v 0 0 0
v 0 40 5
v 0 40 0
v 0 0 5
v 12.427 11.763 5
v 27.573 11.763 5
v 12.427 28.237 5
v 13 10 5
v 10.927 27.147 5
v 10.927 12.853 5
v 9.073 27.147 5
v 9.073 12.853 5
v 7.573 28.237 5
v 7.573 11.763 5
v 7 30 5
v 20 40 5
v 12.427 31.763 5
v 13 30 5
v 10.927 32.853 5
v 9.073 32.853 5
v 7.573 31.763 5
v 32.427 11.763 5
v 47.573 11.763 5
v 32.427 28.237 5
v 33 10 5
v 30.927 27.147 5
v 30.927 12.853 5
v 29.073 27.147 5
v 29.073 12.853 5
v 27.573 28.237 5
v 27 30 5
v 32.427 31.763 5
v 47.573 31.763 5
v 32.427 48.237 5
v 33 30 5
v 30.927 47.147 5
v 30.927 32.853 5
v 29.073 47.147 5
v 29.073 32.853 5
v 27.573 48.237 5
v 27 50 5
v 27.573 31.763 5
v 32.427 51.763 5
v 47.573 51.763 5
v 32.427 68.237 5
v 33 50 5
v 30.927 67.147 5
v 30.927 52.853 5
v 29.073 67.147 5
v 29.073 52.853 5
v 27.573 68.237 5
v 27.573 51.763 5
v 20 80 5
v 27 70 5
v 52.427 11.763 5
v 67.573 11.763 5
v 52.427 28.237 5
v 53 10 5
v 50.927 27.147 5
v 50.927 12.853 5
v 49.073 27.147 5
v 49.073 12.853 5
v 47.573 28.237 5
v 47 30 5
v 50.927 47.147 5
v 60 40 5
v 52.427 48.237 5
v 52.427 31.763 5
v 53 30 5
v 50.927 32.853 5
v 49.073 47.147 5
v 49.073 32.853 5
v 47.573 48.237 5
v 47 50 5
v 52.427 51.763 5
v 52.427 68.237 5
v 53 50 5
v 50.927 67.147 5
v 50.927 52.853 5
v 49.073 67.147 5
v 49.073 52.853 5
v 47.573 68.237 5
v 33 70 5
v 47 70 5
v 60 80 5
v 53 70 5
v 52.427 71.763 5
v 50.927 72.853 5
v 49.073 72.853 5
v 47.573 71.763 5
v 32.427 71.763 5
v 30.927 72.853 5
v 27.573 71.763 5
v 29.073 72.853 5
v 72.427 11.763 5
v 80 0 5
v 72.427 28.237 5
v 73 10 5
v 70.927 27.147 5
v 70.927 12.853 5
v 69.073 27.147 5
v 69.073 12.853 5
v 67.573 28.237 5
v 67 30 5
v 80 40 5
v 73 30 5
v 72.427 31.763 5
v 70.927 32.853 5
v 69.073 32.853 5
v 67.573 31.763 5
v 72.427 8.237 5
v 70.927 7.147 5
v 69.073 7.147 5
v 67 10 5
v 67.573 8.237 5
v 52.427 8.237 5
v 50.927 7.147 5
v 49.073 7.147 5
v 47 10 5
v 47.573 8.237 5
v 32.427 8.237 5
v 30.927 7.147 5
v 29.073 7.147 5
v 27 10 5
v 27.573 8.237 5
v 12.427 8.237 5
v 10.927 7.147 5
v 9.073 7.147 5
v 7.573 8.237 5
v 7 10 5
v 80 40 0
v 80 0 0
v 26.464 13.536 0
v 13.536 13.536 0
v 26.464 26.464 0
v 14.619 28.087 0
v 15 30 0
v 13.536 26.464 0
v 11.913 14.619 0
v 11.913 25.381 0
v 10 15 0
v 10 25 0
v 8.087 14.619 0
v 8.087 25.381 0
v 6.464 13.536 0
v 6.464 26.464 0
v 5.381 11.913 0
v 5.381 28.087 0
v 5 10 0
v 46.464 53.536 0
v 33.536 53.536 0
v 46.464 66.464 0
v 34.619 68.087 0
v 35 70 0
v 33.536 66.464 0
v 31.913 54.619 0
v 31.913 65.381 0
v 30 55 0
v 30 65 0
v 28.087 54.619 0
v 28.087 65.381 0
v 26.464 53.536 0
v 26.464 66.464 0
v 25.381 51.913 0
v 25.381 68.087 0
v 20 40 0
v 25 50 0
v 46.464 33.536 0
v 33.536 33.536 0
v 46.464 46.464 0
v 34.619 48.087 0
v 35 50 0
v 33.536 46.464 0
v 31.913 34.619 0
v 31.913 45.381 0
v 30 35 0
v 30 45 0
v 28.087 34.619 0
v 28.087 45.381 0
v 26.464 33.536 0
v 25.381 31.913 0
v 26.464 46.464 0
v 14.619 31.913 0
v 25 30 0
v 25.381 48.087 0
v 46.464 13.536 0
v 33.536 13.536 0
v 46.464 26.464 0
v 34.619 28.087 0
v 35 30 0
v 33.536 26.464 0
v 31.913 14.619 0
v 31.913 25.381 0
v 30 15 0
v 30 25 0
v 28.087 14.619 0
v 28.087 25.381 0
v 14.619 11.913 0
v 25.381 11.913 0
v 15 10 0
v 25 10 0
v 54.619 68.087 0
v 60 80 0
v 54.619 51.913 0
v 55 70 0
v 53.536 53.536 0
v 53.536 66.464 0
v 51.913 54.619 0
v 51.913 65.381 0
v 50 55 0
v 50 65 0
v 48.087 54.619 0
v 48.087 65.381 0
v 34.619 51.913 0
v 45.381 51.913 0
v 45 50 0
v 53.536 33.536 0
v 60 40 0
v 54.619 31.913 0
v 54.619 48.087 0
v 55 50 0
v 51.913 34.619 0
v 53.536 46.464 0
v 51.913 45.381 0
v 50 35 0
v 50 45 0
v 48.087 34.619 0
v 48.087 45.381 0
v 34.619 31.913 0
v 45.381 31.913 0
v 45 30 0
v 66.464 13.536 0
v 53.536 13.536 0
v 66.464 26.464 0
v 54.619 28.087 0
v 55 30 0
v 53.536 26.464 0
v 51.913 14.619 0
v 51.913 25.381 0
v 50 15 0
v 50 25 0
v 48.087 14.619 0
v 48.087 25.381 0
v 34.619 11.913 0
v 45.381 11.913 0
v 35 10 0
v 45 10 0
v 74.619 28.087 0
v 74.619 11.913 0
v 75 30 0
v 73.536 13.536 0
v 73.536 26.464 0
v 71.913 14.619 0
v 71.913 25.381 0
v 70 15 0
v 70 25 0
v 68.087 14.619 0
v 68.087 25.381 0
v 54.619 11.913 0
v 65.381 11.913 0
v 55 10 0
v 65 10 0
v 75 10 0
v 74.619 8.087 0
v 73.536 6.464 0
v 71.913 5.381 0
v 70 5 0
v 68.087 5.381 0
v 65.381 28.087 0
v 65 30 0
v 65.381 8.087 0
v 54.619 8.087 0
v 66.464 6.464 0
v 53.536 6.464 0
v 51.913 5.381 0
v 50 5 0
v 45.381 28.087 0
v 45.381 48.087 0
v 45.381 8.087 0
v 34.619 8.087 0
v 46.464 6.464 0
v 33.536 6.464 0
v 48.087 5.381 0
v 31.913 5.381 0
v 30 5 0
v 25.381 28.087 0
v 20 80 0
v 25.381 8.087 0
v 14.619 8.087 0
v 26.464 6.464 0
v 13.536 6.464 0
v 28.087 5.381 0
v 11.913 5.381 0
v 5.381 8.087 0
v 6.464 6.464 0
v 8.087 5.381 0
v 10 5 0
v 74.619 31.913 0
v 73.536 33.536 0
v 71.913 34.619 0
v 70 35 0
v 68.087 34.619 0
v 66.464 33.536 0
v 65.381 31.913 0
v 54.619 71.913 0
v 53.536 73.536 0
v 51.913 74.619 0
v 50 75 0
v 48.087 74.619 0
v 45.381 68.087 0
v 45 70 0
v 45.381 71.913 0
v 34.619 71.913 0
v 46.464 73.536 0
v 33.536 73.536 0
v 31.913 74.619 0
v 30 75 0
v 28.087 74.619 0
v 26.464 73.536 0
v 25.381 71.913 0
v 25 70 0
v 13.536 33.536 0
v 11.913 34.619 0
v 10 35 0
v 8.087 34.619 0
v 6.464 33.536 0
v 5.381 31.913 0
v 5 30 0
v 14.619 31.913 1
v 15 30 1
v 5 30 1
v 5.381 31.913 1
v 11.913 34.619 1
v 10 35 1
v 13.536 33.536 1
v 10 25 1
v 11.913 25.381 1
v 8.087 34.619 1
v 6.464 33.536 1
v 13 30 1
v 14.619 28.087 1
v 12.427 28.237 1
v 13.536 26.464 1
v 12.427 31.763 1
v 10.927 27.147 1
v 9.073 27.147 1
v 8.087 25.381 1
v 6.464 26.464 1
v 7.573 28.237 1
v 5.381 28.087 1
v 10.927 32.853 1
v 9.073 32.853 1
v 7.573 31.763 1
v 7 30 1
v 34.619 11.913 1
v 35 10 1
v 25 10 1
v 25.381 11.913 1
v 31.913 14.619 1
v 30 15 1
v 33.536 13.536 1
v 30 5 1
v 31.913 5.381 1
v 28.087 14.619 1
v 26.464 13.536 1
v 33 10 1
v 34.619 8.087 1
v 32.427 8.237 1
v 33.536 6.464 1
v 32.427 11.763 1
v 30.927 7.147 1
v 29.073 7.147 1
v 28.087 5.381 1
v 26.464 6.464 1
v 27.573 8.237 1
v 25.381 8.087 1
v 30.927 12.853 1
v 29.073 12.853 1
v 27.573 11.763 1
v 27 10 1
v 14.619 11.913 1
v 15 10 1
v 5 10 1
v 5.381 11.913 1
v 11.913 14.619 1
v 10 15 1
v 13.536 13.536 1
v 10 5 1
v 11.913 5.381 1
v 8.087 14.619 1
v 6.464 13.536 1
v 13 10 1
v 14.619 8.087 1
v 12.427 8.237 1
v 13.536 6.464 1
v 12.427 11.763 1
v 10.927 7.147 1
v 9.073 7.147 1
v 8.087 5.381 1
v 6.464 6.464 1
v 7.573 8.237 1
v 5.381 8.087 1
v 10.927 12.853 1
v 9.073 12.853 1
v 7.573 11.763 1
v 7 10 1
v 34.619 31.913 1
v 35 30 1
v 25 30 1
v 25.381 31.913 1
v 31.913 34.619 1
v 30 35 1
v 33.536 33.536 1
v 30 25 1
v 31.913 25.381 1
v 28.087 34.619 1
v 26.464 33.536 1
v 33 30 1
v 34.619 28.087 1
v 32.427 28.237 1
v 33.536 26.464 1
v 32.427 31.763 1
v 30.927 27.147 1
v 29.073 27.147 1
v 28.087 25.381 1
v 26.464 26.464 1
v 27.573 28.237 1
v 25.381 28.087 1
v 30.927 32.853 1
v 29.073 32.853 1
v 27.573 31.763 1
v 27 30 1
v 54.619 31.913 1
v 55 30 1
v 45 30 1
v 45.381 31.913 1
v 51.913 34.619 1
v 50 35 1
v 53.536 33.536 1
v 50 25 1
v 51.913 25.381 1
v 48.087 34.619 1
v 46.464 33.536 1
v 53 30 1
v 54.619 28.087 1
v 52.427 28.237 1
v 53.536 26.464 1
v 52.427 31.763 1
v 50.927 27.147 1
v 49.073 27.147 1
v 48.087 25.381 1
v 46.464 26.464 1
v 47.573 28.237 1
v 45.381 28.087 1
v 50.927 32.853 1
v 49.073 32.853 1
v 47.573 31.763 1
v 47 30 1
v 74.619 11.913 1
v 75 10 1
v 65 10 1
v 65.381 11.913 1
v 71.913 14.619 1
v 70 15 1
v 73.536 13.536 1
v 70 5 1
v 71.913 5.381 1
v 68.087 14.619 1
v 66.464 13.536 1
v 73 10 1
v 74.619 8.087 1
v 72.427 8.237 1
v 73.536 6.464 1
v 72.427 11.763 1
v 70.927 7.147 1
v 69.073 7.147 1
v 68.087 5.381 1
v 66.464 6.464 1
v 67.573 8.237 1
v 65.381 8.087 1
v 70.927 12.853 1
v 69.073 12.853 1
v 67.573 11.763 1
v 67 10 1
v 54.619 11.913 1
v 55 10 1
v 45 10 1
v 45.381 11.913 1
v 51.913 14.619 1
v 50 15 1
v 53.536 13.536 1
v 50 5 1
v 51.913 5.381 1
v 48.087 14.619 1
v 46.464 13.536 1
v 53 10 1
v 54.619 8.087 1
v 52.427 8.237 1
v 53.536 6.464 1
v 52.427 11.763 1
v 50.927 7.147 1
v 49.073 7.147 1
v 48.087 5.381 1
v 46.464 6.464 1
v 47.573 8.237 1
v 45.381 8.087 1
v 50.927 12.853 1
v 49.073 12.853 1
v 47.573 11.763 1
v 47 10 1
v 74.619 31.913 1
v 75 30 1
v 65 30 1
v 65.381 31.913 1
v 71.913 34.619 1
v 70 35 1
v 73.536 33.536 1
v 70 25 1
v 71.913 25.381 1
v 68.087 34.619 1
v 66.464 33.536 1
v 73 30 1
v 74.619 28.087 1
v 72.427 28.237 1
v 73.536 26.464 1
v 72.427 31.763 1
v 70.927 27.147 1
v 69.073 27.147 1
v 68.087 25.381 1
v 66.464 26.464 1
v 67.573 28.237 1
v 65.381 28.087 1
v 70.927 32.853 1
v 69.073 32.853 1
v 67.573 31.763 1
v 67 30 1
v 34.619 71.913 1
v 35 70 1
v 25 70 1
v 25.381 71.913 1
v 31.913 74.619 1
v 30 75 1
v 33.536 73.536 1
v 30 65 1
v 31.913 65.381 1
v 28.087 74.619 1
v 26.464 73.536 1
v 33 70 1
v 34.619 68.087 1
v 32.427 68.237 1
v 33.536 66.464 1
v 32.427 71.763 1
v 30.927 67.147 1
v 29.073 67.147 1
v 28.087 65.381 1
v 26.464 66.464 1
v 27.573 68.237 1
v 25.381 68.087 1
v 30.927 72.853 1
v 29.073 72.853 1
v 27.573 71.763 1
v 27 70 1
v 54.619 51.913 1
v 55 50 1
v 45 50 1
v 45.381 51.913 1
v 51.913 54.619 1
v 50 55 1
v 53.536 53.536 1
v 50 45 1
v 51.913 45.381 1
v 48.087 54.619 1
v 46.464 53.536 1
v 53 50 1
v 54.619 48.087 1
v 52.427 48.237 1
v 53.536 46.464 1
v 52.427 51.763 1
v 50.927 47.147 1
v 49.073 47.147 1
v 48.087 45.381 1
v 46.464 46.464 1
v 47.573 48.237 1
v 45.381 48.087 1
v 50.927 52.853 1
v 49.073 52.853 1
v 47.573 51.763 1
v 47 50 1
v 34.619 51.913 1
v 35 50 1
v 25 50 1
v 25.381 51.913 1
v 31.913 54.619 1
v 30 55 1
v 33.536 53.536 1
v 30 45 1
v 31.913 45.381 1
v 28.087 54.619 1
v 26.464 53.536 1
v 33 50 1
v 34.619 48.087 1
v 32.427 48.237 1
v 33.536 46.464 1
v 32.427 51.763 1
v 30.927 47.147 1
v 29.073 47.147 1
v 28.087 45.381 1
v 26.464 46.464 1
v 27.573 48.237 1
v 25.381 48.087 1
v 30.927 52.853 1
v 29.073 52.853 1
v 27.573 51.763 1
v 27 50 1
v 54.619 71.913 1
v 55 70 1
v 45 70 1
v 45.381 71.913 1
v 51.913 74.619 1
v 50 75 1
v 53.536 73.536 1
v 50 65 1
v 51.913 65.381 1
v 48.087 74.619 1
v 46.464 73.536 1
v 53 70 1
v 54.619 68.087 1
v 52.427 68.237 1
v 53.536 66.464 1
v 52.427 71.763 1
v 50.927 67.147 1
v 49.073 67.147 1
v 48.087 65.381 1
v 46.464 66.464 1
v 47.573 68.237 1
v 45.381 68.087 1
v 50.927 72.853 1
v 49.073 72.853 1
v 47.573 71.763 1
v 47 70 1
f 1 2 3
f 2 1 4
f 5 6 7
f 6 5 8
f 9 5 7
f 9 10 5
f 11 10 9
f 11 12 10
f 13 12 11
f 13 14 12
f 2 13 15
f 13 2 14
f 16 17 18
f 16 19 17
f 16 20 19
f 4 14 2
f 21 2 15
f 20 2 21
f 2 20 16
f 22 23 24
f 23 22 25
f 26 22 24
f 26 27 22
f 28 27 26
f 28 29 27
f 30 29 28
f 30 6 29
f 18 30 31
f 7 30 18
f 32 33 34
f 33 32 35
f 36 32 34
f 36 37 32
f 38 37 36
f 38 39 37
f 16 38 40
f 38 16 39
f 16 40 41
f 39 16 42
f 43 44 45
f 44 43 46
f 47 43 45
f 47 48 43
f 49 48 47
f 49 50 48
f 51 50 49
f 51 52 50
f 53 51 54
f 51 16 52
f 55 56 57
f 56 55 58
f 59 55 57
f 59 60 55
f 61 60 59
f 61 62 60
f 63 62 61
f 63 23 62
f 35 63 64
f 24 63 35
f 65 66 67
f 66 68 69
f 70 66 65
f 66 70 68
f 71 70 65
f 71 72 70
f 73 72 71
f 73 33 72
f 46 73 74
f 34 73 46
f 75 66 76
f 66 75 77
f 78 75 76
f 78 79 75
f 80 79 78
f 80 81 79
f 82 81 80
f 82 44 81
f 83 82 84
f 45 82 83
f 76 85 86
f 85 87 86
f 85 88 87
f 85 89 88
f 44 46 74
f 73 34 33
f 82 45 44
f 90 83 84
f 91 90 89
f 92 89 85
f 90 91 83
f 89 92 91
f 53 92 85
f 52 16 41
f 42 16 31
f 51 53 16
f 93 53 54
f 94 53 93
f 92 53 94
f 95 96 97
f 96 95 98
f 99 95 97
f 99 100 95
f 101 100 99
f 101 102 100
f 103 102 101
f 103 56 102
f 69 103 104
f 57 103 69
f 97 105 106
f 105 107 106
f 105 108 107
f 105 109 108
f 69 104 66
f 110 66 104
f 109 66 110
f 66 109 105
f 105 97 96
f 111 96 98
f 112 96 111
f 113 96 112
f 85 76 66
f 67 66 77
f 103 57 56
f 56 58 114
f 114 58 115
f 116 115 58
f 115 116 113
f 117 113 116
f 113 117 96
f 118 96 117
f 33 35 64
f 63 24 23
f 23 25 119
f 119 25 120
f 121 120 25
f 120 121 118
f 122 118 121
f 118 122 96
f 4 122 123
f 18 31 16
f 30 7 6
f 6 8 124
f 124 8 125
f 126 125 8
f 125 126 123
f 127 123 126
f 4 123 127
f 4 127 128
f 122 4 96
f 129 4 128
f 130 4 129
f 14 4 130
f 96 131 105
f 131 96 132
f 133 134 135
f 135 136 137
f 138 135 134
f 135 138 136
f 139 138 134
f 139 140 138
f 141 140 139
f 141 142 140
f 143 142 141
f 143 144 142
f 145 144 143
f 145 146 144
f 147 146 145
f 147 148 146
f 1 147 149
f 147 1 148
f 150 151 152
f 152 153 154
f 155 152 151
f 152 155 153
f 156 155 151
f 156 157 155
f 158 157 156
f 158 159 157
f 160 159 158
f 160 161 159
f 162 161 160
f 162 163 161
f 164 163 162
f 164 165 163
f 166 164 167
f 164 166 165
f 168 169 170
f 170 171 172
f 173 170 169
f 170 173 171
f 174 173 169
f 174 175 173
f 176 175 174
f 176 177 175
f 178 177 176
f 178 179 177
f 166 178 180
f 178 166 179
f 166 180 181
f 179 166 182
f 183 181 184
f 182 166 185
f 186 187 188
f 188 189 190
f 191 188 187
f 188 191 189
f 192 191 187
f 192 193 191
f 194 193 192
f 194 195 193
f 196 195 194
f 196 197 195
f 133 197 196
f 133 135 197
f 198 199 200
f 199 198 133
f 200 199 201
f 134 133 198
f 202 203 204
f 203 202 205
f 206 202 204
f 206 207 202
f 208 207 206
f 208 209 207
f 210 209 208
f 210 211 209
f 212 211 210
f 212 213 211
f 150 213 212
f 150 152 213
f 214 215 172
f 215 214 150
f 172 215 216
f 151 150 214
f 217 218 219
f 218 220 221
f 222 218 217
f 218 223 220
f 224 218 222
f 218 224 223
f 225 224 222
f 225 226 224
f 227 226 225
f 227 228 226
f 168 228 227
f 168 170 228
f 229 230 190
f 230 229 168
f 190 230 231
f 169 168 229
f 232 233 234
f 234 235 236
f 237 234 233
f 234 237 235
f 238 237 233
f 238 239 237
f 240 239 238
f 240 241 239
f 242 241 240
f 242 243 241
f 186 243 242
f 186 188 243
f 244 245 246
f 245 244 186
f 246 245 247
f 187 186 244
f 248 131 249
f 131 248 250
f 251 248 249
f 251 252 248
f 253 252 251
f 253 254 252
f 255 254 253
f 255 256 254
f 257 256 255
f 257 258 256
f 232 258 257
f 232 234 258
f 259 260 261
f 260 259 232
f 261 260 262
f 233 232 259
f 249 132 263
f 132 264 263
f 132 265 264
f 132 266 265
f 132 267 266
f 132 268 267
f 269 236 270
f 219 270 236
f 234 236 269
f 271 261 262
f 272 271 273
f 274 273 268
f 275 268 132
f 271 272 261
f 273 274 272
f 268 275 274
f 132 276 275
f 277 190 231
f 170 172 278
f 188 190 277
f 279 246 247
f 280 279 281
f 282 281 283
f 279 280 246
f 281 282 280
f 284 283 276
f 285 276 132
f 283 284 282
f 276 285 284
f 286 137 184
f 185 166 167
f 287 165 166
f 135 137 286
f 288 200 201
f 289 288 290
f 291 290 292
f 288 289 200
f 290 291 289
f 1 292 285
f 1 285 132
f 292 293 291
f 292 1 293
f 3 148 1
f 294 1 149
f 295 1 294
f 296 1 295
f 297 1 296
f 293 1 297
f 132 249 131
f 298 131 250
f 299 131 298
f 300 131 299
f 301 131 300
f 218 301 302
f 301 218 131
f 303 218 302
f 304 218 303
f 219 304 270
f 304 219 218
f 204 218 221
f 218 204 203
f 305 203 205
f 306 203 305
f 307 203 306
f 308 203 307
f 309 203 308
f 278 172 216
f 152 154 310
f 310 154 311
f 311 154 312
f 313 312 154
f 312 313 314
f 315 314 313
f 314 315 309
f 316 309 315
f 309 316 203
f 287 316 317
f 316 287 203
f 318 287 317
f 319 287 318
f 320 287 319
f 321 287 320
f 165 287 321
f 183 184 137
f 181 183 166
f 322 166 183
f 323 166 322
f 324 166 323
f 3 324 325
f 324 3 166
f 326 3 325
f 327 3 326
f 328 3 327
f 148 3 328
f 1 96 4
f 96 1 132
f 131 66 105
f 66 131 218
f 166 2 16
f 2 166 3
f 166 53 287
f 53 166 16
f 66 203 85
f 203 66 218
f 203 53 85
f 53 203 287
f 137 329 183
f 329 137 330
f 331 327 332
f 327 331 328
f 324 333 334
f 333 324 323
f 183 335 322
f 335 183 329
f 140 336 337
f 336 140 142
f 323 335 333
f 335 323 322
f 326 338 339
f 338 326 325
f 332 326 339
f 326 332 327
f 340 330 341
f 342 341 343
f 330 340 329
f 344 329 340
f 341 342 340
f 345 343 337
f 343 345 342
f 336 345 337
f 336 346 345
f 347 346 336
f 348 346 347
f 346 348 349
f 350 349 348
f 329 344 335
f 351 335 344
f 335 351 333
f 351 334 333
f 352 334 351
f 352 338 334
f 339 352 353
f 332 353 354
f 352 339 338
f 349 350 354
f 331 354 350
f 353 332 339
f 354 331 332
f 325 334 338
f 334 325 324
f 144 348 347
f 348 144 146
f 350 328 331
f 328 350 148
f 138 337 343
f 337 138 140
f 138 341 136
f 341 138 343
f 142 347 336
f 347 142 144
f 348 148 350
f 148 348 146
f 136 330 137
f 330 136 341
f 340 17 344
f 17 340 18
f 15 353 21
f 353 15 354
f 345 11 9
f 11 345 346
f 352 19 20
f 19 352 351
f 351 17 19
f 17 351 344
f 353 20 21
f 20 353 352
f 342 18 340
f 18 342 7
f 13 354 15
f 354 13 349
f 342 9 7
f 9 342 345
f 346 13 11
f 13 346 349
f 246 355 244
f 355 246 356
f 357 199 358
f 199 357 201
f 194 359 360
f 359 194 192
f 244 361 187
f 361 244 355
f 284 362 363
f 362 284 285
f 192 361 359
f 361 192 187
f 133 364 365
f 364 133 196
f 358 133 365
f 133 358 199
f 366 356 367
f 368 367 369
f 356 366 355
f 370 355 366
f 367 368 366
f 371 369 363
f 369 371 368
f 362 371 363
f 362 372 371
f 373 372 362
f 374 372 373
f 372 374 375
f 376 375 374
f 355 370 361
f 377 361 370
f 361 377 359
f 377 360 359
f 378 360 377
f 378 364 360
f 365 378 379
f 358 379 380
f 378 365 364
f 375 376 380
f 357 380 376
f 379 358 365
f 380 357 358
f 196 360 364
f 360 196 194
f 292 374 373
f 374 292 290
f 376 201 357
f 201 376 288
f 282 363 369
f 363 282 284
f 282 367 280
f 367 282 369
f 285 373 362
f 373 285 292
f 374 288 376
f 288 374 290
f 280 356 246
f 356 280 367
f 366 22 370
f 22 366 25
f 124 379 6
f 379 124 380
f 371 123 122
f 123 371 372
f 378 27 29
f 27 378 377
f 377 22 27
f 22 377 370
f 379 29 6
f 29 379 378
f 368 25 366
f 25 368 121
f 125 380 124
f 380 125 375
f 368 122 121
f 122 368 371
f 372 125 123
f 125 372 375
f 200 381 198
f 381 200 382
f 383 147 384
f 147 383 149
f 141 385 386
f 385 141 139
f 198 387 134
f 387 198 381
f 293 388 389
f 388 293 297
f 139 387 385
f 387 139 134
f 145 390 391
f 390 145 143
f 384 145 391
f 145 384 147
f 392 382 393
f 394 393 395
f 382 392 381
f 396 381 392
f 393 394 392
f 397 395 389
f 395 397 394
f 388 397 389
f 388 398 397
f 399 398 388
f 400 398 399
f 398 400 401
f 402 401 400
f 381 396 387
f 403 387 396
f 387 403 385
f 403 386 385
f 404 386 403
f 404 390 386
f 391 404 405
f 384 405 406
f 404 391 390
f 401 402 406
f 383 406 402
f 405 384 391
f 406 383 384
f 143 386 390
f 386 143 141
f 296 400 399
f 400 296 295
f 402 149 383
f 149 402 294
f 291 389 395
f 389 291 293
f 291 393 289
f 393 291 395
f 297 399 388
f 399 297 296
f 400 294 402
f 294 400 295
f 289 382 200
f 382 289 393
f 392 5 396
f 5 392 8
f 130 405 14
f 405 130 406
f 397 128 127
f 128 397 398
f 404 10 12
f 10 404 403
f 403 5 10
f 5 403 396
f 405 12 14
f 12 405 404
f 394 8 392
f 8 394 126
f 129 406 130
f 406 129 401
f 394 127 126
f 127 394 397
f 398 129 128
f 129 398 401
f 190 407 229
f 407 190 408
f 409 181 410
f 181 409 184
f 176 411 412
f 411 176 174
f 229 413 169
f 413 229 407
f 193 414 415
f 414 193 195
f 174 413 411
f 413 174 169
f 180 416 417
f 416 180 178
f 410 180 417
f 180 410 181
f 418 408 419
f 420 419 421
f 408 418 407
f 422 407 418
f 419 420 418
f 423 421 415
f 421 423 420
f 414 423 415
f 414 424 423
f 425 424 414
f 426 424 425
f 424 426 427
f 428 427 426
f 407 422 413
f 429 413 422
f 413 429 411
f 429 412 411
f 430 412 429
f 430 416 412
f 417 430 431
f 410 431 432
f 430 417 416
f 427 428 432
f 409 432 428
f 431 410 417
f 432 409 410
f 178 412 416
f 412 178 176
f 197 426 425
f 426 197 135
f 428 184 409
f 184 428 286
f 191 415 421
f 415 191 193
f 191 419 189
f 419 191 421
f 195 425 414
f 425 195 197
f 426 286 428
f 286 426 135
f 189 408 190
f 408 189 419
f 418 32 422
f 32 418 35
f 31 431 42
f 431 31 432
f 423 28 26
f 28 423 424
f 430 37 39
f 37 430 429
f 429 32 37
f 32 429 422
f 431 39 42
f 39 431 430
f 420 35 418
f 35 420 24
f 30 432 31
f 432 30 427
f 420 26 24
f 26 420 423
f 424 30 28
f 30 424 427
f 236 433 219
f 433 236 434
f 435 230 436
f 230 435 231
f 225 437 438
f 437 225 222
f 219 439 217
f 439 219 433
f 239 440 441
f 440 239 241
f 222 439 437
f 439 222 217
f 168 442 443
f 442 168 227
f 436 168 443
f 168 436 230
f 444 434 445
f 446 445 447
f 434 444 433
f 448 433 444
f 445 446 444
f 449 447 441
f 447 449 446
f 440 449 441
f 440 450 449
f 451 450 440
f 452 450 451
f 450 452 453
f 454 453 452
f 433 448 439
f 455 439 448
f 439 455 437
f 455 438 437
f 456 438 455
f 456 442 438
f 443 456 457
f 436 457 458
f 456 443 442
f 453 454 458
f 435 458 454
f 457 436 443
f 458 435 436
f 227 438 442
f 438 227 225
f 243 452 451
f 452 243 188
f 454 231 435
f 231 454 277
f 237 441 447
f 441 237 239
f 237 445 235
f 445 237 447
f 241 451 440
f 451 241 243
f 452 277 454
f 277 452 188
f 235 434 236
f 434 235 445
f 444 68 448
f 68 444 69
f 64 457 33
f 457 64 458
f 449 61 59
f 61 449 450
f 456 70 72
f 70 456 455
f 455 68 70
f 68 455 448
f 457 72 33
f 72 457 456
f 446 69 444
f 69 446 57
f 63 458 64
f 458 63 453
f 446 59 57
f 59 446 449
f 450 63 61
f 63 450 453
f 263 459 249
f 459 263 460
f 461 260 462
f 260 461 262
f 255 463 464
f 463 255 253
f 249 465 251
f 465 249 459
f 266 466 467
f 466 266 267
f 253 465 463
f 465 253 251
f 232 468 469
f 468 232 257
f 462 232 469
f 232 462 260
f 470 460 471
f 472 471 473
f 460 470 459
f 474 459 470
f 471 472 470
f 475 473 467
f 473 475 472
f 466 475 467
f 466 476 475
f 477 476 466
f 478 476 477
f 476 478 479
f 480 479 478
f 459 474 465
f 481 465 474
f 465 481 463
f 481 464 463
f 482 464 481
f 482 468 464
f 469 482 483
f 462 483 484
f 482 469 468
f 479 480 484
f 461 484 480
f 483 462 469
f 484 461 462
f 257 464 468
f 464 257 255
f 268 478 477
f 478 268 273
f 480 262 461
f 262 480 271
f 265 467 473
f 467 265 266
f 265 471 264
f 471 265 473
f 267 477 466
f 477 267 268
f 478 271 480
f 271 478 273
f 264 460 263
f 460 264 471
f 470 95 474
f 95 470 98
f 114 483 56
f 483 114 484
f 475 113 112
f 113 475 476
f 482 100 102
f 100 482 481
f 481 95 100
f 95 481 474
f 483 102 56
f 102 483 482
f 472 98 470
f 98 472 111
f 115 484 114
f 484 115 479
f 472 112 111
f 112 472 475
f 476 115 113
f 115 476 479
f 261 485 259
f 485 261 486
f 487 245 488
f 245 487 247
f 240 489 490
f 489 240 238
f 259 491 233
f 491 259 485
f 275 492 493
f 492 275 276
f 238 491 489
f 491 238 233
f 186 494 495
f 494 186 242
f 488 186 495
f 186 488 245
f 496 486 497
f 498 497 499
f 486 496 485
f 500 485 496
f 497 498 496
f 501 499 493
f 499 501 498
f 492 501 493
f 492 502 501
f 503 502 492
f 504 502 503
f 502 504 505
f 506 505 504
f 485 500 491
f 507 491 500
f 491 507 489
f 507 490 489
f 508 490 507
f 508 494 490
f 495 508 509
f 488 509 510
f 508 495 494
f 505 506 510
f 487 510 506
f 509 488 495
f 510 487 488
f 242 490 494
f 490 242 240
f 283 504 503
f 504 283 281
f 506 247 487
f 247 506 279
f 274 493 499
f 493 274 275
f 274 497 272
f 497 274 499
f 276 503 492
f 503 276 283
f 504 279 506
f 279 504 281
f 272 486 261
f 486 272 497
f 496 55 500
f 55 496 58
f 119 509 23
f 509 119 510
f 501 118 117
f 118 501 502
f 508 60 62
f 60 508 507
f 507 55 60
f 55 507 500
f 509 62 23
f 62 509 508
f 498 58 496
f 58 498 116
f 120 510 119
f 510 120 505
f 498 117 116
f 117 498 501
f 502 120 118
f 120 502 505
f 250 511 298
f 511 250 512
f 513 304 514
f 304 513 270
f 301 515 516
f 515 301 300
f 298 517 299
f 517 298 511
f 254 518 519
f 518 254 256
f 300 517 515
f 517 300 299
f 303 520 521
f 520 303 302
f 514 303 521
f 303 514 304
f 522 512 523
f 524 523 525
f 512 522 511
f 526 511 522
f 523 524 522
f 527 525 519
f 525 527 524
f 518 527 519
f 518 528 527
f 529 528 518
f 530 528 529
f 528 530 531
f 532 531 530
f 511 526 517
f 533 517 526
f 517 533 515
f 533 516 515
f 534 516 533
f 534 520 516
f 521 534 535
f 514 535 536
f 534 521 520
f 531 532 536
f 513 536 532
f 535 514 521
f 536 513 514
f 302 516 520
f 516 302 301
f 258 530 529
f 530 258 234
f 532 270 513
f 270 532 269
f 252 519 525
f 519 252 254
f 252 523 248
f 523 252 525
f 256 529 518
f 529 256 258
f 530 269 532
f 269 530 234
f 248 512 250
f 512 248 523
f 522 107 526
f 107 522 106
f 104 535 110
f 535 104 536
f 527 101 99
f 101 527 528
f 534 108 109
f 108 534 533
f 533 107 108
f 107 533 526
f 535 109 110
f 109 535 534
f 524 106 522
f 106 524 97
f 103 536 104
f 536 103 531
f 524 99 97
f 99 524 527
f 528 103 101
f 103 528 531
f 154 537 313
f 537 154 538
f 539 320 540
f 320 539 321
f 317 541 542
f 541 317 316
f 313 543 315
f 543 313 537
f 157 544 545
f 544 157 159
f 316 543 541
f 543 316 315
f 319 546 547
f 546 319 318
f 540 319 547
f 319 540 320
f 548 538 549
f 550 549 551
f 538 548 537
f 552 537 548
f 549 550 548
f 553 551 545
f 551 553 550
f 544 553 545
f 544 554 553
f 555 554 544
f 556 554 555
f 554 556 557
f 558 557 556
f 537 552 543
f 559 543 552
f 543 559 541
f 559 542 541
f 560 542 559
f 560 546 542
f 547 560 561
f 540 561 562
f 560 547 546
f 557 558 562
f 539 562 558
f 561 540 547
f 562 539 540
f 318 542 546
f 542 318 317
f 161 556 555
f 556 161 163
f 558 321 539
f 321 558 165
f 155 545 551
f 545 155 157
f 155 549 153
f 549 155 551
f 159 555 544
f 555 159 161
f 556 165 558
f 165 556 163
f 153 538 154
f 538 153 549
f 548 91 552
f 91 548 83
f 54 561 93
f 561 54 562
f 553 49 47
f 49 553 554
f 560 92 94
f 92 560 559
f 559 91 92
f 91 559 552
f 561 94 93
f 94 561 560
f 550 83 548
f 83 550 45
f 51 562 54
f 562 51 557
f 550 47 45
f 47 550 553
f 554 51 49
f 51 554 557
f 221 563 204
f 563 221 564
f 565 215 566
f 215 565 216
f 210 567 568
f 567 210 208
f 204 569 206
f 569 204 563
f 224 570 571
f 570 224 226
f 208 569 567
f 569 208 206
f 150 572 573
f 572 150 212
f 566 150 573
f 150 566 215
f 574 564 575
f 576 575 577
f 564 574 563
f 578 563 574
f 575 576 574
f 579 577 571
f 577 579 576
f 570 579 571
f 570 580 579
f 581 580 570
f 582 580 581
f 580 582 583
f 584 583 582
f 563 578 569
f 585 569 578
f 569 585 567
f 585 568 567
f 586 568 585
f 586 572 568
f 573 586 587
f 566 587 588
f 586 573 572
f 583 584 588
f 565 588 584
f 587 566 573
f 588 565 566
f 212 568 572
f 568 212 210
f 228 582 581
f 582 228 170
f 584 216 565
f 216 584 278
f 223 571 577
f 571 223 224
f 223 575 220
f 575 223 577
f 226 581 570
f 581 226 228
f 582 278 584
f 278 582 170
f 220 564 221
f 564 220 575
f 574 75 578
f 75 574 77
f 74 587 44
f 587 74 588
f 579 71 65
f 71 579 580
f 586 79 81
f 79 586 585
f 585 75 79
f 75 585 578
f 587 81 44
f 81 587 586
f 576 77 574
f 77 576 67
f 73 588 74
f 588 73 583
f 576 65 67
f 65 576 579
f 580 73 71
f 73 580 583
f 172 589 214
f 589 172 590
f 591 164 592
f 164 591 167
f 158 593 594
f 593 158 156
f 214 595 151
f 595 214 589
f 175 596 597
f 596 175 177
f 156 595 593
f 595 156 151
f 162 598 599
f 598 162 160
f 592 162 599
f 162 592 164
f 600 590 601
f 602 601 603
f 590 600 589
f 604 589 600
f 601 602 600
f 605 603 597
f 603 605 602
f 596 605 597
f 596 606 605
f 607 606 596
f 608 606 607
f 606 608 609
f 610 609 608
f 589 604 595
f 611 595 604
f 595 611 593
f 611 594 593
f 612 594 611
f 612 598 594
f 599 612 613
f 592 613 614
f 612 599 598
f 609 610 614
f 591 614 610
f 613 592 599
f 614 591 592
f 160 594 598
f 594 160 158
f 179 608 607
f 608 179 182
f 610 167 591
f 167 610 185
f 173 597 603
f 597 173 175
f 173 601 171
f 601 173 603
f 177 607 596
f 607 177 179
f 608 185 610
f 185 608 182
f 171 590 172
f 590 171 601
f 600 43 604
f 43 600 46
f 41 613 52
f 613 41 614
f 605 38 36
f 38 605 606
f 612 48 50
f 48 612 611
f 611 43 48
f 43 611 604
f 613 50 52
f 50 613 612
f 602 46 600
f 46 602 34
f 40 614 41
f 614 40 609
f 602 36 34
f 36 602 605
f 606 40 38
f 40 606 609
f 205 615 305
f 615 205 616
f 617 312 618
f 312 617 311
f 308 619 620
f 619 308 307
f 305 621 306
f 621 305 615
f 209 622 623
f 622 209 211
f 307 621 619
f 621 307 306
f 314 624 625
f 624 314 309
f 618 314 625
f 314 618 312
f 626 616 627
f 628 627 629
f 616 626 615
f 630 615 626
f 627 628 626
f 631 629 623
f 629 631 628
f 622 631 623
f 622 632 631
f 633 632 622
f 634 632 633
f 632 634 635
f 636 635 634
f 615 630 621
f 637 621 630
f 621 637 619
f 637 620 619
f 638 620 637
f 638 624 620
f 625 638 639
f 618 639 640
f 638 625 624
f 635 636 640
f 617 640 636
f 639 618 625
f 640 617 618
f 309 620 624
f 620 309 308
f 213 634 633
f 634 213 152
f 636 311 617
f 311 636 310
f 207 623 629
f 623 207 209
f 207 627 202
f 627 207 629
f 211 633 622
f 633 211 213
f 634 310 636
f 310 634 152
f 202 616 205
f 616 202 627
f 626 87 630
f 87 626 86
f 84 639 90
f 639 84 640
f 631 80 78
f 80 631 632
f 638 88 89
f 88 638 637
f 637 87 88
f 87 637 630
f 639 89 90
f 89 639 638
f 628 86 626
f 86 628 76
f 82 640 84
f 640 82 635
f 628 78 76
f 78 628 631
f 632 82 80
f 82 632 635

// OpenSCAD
// file: Profile.scad
q = 5;

ri = 0.3;
w2 =  6.4/2-ri;
w1 = 11.0/2-ri;
w0 =     w2;
th =  4.3;
t0 =  2.1+1.8+ri;
t1 =  t0+2.35;
t2 =  t0+th-ri;


module groove() {
    hull() {
        translate([ t2+2*ri,  w2+2*ri]) circle(r=ri, $fn=2*q);
        translate([ t2+2*ri+5,  w2+2*ri+5]) circle(r=ri, $fn=2*q);
        translate([ t2+2*ri,  10]) circle(r=ri, $fn=3);
    }
}

module slot_6() {
    hull() {
        translate([ t0, -w0]) circle(r=ri, $fn=5*q);
        translate([ t0,  w0]) circle(r=ri, $fn=2*q);
        translate([ t1, -w1]) circle(r=ri, $fn=2*q);
        translate([ t1,  w1]) circle(r=ri, $fn=2*q);
        translate([ t2, -w1]) circle(r=ri, $fn=2*q);
        translate([ t2,  w1]) circle(r=ri, $fn=2*q);
    }  
    translate([ t0-0.3, 0]) circle(r=0.5, $fn=5*q);    
}
module vSlot_6() {
    slot_6();
    difference() {
        translate([ t2+5,  0]) square([10,10], center=true);
        groove();
        mirror([0,1]) groove();
    }
}

module profile20x20_6V() {  // 20x20mm profile 6mm Vslot
    le = 20/2;
    difference() {
        hull() {
            translate([-le+0.5,-le+0.5]) circle(r=0.5, $fn=2*q);
            translate([-le+0.5, le-0.5]) circle(r=0.5, $fn=2*q);
            translate([ le-0.5,-le+0.5]) circle(r=0.5, $fn=2*q);
            translate([ le-0.5, le-0.5]) circle(r=0.5, $fn=2*q);
        }   
        circle(d=4.2, $fn=3*q);
        for(i=[0:3]) rotate(90*i) vSlot_6();
    }    
}

module profile40x40_6V() {  // 40x40mm profile 6mm Vslot
    le = 40/2;
    difference() {
        hull() {
            translate([-le+2,-le+2]) circle(r=2, $fn=3*q);
            translate([-le+2, le-2]) circle(r=2, $fn=3*q);
            translate([ le-2,-le+2]) circle(r=2, $fn=3*q);
            translate([ le-2, le-2]) circle(r=2, $fn=3*q);
        }   
        for(i=[0:3]) {
            rotate(90*i) translate([ le/2, le/2]) circle(d=4.6, $fn=3*q);
            rotate(90*i) translate([ le/2, le/2]) vSlot_6();
            rotate(90*i) translate([ le/2,-le/2]) vSlot_6();
            rotate(90*i) translate([-le/2, le/2])  slot_6();
            rotate(90*i) translate([-le/2,-le/2])  slot_6();
        }
        square([le*0.35, le*1.85],center=true);
        square([le*1.85, le*0.35],center=true);
        rotate(45) square(le*0.93,center=true);
    }
}
module V20x20_6(h) {
    linear_extrude(height=h)
    profile20x20_6V();
}

module V40x40_6(h) {
    linear_extrude(height=h)
    profile40x40_6V();
}

//T40x40_10(100);
//vSlotGroove6();
//profile20x20_6V();
//profile40x40_6V();
V20x20_6(50);
translate([60,0]) V40x40_6(50);
// main file
use <Profile.scad>

//%translate([20,20,0]) V40x40_6(50);
//%translate([60.1,20,0]) V40x40_6(50);

module m5_bolt(tl)
{
    rotate([0,0,0]) translate([0,0,0]) cylinder(r=5,h=4);
    rotate([0,0,0]) translate([0,0,2.9]) cylinder(r=3,h=tl+1);
    
}

module theplate()
{
 translate([0,0,0]) cube([80,40,5]);
 translate([20,40,0]) cube([40,40,5]);       
    
}

module tplate()
{
difference(){
 theplate();
 translate([10,30,-3]) m5_bolt(30);
 translate([30,10,-3]) m5_bolt(30);
 translate([10,10,-3]) m5_bolt(30);
 translate([30,30,-3]) m5_bolt(30);
 translate([40+10,30,-3]) m5_bolt(30);
 translate([40+30,10,-3]) m5_bolt(30);
 translate([40+10,10,-3]) m5_bolt(30);
 translate([40+30,30,-3]) m5_bolt(30);
 translate([20+10,30+40,-3]) m5_bolt(30);
 translate([20+30,10+40,-3]) m5_bolt(30);
 translate([20+10,10+40,-3]) m5_bolt(30);
 translate([20+30,30+40,-3]) m5_bolt(30);     
 
}   
tsize = 10;
}

//translate([0,0,50]) theplate();
tplate();
